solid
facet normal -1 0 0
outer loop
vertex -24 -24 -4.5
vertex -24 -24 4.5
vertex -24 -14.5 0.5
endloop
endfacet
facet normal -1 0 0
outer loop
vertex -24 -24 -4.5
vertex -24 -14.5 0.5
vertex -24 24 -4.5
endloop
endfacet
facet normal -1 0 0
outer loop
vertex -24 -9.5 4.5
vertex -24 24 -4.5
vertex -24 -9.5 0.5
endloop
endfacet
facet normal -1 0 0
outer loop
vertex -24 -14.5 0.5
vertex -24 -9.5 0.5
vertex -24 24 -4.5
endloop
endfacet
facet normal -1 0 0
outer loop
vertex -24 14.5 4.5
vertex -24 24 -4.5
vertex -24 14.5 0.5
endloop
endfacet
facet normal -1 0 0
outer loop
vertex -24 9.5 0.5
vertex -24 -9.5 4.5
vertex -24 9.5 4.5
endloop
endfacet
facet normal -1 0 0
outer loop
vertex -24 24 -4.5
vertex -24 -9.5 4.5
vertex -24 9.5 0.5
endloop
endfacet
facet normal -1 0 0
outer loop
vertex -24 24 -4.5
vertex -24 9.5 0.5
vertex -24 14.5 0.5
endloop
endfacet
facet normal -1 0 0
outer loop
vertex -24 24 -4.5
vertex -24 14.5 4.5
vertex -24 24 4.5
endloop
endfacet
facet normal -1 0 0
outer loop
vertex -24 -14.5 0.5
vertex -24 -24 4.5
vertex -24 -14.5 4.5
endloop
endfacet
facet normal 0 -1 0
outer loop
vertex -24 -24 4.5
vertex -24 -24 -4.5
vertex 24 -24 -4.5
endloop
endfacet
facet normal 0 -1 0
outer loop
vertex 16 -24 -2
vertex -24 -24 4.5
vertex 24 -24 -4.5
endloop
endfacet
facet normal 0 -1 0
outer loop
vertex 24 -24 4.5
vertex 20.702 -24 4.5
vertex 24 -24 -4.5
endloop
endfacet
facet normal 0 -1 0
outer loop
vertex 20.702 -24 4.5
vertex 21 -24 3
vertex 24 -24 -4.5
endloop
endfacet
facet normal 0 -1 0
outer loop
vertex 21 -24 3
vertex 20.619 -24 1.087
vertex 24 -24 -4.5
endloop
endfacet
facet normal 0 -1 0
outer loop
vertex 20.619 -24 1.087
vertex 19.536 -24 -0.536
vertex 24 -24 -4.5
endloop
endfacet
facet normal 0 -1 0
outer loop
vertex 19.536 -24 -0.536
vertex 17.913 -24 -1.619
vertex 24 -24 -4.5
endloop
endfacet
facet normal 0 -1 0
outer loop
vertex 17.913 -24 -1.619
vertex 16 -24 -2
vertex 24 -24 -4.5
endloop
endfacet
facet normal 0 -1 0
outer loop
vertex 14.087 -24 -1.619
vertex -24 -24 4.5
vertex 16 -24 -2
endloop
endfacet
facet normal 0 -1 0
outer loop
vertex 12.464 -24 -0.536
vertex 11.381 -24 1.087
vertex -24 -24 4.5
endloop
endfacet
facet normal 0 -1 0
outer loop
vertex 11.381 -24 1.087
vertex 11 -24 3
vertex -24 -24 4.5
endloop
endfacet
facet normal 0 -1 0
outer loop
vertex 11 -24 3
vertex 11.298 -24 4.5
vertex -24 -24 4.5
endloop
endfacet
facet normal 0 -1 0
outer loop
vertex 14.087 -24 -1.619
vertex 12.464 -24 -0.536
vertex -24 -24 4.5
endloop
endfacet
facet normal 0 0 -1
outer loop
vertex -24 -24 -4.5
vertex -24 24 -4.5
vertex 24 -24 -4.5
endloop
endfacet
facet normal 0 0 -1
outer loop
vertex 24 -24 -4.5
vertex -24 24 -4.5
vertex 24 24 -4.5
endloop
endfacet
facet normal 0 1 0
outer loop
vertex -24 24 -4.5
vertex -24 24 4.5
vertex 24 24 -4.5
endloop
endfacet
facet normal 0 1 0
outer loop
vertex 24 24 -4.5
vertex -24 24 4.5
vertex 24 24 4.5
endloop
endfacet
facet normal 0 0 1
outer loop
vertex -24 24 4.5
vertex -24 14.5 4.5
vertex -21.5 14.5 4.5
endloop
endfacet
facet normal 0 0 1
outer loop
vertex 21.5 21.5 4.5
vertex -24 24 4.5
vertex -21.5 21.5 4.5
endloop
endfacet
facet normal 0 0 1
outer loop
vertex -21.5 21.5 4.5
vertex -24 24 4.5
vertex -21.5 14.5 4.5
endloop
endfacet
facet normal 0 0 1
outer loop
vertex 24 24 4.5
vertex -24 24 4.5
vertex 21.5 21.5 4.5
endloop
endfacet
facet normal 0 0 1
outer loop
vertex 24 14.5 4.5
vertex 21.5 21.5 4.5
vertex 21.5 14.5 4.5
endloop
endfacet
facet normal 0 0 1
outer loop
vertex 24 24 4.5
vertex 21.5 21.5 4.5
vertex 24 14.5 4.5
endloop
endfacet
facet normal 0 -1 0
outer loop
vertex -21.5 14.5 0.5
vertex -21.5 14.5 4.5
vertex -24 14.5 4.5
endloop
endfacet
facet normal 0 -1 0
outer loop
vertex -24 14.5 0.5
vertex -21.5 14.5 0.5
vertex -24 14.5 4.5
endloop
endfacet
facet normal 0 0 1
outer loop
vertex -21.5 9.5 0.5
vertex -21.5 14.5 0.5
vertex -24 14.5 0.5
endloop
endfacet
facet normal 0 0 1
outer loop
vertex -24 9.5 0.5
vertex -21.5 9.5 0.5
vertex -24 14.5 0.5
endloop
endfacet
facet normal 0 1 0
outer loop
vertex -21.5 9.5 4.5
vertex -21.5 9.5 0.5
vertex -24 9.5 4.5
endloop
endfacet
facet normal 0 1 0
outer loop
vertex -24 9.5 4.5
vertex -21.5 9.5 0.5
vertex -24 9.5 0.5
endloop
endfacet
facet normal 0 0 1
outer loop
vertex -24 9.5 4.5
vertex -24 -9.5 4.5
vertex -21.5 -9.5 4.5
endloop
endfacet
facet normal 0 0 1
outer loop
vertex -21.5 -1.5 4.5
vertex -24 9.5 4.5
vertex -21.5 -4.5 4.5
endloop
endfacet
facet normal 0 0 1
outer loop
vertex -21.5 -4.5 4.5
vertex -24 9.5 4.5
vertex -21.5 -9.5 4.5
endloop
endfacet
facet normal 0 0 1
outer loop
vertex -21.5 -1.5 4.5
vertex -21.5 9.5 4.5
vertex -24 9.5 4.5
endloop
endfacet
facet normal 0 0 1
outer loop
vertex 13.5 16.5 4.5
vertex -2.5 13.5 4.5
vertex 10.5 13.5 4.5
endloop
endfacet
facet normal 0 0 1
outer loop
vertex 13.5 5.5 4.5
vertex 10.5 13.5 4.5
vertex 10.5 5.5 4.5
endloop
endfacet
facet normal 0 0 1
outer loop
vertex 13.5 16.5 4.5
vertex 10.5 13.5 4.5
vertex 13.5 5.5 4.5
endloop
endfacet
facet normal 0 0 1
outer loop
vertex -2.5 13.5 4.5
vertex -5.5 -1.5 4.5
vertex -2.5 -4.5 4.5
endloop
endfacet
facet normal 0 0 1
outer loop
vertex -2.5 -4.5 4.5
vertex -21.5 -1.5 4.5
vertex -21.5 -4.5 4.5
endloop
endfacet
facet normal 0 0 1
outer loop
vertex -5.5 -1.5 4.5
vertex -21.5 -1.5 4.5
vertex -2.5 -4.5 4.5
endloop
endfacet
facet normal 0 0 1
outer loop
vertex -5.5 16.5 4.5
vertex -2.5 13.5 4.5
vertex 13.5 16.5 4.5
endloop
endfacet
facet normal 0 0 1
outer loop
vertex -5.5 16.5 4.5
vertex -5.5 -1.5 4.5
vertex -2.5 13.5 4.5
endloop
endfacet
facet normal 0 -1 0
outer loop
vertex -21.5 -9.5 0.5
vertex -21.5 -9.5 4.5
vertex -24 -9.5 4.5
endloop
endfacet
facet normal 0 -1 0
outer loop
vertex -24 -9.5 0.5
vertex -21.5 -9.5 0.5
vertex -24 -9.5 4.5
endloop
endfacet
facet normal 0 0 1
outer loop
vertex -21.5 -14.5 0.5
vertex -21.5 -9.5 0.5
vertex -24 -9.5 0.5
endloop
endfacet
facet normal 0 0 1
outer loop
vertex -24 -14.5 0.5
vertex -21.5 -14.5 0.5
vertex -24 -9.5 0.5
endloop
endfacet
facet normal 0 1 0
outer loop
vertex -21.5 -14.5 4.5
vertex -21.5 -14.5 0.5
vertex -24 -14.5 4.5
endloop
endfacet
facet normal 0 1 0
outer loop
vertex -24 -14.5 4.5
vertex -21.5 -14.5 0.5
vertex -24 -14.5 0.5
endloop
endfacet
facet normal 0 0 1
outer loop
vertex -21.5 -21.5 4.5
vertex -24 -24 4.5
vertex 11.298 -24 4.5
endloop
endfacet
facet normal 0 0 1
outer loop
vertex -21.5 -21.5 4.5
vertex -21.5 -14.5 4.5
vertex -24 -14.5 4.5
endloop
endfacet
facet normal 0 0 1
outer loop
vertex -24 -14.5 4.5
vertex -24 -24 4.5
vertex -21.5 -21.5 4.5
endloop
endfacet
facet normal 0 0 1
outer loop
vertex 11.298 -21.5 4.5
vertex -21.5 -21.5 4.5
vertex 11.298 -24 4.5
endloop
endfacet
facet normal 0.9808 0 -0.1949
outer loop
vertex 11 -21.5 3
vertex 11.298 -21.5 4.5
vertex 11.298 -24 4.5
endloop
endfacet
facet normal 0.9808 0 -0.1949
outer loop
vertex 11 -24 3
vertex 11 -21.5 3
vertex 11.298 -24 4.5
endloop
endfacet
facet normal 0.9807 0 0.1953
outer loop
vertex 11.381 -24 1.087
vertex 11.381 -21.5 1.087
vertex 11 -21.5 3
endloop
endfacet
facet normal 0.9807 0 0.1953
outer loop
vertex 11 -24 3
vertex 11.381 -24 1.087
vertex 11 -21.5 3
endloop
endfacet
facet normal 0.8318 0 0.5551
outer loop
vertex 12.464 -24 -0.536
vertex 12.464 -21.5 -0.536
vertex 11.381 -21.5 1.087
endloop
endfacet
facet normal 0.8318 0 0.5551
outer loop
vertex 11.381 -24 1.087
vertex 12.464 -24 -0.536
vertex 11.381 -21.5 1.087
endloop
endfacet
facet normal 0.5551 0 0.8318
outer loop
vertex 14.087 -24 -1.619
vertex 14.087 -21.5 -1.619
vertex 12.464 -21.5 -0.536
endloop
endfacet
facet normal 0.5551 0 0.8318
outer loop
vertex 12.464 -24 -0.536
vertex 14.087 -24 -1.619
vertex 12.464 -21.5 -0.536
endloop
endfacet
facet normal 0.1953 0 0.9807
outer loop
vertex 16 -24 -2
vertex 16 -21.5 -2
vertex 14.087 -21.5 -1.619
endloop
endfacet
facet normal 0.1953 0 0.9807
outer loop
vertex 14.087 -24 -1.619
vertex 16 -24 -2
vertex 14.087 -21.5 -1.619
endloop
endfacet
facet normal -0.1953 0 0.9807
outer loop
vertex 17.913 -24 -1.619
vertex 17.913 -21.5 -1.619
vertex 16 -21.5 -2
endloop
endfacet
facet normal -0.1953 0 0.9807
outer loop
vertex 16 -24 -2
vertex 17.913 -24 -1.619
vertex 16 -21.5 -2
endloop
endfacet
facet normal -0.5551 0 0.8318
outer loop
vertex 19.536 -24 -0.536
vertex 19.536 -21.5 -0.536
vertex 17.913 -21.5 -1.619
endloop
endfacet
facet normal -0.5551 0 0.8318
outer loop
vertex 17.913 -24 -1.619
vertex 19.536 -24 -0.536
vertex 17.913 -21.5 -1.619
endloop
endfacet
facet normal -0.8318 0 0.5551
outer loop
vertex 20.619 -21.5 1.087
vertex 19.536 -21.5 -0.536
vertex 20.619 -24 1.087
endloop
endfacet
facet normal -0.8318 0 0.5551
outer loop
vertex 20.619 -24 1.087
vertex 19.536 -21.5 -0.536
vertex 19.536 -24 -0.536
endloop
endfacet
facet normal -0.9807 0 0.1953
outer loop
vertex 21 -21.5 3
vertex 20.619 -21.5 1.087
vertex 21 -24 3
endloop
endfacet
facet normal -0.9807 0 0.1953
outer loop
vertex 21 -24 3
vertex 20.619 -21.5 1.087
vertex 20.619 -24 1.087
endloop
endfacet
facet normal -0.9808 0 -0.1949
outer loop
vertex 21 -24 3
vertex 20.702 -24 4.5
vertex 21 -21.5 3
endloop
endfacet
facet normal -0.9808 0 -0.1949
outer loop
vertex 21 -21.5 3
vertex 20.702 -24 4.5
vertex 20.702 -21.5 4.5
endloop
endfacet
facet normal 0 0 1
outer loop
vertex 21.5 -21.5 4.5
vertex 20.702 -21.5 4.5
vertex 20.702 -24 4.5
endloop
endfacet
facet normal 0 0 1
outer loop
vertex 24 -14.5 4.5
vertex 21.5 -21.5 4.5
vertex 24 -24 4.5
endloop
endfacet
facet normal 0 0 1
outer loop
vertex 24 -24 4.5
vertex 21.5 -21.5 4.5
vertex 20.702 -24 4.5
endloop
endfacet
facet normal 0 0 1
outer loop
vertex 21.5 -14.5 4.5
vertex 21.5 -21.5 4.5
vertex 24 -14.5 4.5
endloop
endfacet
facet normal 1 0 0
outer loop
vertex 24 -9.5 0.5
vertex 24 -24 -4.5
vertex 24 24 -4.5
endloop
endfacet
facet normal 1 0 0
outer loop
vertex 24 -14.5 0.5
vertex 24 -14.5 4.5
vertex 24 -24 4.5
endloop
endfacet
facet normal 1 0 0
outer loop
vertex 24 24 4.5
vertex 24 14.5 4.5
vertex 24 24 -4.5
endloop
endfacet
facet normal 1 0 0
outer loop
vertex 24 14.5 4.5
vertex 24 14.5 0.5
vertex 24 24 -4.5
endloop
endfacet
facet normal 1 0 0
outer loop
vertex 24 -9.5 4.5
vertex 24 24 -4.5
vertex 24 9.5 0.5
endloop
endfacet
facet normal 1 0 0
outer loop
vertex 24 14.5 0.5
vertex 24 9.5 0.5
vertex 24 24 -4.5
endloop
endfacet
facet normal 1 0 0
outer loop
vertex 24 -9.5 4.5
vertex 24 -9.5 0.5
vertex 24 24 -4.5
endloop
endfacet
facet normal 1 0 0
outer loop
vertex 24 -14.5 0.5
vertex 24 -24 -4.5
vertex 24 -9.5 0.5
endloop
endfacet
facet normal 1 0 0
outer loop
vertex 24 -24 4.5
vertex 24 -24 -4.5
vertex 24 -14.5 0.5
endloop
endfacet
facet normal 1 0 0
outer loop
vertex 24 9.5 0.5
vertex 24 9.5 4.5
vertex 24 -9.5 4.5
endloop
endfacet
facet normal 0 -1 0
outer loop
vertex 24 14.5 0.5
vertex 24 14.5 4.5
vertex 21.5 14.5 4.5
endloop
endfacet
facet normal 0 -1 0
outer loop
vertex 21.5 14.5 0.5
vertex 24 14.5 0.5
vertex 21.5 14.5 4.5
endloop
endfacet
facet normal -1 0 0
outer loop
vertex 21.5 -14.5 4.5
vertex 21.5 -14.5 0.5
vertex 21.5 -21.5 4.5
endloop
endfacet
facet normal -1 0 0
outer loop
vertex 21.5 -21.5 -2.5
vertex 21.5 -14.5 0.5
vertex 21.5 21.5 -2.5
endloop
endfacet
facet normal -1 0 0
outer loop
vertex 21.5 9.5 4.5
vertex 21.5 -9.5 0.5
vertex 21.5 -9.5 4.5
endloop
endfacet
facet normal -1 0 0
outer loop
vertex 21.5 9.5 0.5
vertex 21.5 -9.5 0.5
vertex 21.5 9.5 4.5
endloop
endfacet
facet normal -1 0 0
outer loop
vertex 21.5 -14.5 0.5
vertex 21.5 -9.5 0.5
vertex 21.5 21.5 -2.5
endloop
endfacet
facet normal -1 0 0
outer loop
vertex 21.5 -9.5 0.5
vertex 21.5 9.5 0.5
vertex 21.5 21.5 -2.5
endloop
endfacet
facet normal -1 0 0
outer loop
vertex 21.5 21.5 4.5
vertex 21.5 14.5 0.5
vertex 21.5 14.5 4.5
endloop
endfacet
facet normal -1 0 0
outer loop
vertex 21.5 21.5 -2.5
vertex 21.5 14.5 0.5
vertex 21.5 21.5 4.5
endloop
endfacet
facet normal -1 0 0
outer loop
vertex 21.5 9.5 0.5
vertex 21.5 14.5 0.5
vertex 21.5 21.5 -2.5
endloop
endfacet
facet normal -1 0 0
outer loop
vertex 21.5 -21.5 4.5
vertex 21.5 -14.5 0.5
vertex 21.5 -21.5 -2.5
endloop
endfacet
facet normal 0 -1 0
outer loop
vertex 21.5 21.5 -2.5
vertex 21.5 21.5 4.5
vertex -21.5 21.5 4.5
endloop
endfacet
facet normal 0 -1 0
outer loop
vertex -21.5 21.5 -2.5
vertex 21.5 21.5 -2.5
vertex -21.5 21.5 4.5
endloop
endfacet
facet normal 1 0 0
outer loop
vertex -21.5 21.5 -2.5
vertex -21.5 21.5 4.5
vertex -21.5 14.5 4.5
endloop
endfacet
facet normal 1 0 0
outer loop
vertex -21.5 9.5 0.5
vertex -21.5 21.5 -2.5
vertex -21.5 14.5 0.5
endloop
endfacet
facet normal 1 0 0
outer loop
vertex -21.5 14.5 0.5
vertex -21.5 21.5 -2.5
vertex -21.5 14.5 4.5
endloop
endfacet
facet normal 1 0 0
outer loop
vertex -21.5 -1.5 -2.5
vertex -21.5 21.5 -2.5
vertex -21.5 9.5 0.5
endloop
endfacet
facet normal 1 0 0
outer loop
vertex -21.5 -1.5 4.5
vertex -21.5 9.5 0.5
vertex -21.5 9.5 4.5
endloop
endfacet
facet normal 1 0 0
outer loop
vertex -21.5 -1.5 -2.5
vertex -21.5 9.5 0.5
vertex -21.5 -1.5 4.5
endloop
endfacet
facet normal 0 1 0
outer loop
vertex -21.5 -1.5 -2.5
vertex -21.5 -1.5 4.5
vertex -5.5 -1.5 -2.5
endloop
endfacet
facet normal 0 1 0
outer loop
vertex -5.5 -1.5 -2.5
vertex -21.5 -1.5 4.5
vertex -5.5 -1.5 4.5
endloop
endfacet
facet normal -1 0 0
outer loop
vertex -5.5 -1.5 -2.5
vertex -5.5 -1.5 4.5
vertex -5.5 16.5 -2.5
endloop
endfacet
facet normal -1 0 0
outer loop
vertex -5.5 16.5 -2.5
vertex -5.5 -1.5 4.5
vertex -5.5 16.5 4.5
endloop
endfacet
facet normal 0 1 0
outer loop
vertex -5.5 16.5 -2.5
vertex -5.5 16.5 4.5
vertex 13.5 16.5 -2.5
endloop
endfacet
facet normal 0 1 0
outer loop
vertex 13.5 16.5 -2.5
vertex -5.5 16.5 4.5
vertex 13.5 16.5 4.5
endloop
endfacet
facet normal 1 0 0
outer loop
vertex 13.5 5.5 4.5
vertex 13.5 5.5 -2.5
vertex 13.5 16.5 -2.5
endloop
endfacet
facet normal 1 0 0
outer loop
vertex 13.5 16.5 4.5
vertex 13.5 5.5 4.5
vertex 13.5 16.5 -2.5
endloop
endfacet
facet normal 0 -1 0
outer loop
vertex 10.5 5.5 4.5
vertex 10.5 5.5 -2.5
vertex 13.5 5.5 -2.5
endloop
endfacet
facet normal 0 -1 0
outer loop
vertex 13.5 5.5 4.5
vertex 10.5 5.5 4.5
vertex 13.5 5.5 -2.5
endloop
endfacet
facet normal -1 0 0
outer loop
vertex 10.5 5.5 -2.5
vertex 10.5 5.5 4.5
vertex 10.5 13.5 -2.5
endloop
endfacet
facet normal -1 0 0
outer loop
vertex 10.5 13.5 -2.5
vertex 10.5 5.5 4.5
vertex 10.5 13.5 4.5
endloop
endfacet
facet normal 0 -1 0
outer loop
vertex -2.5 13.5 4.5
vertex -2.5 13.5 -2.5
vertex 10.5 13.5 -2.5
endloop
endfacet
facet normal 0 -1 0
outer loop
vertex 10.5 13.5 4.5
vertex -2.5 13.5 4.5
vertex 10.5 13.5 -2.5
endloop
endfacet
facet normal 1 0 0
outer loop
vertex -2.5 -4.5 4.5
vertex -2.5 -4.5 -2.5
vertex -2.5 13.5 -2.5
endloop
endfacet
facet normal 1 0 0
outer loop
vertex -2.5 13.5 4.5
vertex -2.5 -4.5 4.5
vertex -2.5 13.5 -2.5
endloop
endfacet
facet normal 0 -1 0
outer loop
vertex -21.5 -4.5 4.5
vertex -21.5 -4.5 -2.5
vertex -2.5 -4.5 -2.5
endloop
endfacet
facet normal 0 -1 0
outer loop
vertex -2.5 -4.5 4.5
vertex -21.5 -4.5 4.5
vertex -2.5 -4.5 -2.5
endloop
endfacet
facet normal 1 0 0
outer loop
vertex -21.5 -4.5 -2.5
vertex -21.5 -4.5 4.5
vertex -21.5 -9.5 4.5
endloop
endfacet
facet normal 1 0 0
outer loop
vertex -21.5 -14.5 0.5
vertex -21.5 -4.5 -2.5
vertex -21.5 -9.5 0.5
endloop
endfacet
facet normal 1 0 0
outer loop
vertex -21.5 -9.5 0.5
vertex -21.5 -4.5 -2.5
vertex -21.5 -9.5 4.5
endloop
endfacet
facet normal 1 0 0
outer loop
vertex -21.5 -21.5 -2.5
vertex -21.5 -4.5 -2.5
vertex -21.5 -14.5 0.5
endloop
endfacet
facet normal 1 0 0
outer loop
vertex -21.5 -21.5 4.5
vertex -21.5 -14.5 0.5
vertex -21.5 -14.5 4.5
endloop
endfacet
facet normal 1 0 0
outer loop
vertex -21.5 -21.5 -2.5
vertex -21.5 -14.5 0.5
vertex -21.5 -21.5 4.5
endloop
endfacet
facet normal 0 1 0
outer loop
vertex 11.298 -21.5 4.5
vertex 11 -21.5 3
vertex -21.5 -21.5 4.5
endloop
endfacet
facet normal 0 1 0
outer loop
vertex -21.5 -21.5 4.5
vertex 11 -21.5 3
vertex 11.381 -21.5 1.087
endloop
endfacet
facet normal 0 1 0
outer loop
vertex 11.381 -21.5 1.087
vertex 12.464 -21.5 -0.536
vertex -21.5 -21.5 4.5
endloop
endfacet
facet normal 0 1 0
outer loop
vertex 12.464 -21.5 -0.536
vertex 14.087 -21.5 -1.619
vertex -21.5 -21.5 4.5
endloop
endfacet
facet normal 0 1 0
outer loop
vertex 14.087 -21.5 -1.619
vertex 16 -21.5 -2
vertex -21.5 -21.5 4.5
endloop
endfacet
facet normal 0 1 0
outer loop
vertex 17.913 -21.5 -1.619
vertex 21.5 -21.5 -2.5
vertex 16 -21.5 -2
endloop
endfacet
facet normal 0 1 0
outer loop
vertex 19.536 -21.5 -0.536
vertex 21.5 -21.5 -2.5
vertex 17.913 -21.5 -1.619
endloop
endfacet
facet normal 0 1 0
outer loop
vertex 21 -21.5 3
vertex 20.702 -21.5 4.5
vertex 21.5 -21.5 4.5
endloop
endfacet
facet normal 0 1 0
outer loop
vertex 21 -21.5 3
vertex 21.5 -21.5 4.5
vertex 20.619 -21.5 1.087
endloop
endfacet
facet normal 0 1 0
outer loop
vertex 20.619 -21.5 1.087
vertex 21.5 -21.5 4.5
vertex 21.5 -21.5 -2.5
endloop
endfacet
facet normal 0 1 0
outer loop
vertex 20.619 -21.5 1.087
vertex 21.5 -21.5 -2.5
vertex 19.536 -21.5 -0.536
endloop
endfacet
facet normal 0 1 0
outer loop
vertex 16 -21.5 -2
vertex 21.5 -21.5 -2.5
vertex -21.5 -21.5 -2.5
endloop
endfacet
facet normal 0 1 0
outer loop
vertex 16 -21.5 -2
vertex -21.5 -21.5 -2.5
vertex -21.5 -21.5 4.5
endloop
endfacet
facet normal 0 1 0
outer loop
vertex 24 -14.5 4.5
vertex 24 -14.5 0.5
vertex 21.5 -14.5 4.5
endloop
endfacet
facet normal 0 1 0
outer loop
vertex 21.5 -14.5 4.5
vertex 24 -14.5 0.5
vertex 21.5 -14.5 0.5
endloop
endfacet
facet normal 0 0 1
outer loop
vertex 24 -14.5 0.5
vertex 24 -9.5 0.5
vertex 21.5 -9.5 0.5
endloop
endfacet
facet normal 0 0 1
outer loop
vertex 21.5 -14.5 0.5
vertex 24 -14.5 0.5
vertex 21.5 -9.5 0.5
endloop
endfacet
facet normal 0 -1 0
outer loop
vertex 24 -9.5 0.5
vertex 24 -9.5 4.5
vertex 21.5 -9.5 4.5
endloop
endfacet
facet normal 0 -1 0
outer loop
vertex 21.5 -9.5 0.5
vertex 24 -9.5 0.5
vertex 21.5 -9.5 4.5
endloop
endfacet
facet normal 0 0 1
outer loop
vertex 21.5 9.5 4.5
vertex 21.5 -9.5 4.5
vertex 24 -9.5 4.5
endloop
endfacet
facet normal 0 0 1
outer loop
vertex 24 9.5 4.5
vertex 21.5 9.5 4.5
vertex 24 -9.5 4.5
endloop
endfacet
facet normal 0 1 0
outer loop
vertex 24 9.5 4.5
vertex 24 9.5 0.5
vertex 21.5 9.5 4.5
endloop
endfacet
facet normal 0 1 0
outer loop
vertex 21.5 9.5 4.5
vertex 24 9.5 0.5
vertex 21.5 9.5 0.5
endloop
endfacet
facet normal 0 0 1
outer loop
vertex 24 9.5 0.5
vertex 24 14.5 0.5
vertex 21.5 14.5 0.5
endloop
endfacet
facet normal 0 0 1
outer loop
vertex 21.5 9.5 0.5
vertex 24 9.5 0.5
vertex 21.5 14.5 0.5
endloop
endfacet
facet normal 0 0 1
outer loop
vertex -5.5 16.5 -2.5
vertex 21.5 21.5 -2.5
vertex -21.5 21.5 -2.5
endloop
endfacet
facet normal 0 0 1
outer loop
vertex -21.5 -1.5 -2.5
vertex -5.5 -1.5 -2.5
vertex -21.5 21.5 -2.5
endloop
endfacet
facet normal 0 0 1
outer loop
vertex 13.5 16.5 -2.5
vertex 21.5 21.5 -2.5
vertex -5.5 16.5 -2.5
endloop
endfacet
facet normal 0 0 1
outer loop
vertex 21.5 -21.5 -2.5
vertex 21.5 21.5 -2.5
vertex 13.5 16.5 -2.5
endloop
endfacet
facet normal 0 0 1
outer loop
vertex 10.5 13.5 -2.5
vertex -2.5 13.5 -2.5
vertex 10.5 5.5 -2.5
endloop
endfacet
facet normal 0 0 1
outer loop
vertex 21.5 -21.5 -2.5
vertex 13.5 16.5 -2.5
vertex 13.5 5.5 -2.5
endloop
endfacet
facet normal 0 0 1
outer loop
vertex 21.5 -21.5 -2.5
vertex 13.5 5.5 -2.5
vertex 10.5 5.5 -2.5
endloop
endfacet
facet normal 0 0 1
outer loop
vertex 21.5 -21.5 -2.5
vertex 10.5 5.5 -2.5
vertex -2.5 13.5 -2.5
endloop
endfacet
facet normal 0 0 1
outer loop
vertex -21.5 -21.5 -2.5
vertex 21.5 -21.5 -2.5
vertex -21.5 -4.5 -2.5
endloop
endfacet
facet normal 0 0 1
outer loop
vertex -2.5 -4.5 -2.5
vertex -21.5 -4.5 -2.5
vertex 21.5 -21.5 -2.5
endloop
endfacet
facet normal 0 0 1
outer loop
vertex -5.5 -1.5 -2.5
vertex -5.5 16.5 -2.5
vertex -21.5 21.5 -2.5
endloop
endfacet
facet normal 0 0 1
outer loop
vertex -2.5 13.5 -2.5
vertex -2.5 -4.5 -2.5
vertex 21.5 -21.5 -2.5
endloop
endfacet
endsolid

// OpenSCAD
difference(){
	cube(size=[48,48,9], center = true);
	translate([0,0,2]) cube(size=[43,43,9], center = true);
	translate([16,-20.5,3]) rotate([90,0,0]) cylinder(20,5,5);
	translate([22.5,12,3]) cube(size=[5,5,5], center = true);
	translate([22.5,-12,3]) cube(size=[5,5,5], center = true);
	translate([-22.5,12,3]) cube(size=[5,5,5], center = true);
	translate([-22.5,-12,3]) cube(size=[5,5,5], center = true);
}
	translate([-14,-3,0]) cube(size=[20,3,9], center = true);
	translate([4,15,0]) cube(size=[15,3,9], center = true);
	translate([-4,6,0]) cube(size=[3,21,9], center = true);
	translate([12,11,0]) cube(size=[3,11,9], center = true);
